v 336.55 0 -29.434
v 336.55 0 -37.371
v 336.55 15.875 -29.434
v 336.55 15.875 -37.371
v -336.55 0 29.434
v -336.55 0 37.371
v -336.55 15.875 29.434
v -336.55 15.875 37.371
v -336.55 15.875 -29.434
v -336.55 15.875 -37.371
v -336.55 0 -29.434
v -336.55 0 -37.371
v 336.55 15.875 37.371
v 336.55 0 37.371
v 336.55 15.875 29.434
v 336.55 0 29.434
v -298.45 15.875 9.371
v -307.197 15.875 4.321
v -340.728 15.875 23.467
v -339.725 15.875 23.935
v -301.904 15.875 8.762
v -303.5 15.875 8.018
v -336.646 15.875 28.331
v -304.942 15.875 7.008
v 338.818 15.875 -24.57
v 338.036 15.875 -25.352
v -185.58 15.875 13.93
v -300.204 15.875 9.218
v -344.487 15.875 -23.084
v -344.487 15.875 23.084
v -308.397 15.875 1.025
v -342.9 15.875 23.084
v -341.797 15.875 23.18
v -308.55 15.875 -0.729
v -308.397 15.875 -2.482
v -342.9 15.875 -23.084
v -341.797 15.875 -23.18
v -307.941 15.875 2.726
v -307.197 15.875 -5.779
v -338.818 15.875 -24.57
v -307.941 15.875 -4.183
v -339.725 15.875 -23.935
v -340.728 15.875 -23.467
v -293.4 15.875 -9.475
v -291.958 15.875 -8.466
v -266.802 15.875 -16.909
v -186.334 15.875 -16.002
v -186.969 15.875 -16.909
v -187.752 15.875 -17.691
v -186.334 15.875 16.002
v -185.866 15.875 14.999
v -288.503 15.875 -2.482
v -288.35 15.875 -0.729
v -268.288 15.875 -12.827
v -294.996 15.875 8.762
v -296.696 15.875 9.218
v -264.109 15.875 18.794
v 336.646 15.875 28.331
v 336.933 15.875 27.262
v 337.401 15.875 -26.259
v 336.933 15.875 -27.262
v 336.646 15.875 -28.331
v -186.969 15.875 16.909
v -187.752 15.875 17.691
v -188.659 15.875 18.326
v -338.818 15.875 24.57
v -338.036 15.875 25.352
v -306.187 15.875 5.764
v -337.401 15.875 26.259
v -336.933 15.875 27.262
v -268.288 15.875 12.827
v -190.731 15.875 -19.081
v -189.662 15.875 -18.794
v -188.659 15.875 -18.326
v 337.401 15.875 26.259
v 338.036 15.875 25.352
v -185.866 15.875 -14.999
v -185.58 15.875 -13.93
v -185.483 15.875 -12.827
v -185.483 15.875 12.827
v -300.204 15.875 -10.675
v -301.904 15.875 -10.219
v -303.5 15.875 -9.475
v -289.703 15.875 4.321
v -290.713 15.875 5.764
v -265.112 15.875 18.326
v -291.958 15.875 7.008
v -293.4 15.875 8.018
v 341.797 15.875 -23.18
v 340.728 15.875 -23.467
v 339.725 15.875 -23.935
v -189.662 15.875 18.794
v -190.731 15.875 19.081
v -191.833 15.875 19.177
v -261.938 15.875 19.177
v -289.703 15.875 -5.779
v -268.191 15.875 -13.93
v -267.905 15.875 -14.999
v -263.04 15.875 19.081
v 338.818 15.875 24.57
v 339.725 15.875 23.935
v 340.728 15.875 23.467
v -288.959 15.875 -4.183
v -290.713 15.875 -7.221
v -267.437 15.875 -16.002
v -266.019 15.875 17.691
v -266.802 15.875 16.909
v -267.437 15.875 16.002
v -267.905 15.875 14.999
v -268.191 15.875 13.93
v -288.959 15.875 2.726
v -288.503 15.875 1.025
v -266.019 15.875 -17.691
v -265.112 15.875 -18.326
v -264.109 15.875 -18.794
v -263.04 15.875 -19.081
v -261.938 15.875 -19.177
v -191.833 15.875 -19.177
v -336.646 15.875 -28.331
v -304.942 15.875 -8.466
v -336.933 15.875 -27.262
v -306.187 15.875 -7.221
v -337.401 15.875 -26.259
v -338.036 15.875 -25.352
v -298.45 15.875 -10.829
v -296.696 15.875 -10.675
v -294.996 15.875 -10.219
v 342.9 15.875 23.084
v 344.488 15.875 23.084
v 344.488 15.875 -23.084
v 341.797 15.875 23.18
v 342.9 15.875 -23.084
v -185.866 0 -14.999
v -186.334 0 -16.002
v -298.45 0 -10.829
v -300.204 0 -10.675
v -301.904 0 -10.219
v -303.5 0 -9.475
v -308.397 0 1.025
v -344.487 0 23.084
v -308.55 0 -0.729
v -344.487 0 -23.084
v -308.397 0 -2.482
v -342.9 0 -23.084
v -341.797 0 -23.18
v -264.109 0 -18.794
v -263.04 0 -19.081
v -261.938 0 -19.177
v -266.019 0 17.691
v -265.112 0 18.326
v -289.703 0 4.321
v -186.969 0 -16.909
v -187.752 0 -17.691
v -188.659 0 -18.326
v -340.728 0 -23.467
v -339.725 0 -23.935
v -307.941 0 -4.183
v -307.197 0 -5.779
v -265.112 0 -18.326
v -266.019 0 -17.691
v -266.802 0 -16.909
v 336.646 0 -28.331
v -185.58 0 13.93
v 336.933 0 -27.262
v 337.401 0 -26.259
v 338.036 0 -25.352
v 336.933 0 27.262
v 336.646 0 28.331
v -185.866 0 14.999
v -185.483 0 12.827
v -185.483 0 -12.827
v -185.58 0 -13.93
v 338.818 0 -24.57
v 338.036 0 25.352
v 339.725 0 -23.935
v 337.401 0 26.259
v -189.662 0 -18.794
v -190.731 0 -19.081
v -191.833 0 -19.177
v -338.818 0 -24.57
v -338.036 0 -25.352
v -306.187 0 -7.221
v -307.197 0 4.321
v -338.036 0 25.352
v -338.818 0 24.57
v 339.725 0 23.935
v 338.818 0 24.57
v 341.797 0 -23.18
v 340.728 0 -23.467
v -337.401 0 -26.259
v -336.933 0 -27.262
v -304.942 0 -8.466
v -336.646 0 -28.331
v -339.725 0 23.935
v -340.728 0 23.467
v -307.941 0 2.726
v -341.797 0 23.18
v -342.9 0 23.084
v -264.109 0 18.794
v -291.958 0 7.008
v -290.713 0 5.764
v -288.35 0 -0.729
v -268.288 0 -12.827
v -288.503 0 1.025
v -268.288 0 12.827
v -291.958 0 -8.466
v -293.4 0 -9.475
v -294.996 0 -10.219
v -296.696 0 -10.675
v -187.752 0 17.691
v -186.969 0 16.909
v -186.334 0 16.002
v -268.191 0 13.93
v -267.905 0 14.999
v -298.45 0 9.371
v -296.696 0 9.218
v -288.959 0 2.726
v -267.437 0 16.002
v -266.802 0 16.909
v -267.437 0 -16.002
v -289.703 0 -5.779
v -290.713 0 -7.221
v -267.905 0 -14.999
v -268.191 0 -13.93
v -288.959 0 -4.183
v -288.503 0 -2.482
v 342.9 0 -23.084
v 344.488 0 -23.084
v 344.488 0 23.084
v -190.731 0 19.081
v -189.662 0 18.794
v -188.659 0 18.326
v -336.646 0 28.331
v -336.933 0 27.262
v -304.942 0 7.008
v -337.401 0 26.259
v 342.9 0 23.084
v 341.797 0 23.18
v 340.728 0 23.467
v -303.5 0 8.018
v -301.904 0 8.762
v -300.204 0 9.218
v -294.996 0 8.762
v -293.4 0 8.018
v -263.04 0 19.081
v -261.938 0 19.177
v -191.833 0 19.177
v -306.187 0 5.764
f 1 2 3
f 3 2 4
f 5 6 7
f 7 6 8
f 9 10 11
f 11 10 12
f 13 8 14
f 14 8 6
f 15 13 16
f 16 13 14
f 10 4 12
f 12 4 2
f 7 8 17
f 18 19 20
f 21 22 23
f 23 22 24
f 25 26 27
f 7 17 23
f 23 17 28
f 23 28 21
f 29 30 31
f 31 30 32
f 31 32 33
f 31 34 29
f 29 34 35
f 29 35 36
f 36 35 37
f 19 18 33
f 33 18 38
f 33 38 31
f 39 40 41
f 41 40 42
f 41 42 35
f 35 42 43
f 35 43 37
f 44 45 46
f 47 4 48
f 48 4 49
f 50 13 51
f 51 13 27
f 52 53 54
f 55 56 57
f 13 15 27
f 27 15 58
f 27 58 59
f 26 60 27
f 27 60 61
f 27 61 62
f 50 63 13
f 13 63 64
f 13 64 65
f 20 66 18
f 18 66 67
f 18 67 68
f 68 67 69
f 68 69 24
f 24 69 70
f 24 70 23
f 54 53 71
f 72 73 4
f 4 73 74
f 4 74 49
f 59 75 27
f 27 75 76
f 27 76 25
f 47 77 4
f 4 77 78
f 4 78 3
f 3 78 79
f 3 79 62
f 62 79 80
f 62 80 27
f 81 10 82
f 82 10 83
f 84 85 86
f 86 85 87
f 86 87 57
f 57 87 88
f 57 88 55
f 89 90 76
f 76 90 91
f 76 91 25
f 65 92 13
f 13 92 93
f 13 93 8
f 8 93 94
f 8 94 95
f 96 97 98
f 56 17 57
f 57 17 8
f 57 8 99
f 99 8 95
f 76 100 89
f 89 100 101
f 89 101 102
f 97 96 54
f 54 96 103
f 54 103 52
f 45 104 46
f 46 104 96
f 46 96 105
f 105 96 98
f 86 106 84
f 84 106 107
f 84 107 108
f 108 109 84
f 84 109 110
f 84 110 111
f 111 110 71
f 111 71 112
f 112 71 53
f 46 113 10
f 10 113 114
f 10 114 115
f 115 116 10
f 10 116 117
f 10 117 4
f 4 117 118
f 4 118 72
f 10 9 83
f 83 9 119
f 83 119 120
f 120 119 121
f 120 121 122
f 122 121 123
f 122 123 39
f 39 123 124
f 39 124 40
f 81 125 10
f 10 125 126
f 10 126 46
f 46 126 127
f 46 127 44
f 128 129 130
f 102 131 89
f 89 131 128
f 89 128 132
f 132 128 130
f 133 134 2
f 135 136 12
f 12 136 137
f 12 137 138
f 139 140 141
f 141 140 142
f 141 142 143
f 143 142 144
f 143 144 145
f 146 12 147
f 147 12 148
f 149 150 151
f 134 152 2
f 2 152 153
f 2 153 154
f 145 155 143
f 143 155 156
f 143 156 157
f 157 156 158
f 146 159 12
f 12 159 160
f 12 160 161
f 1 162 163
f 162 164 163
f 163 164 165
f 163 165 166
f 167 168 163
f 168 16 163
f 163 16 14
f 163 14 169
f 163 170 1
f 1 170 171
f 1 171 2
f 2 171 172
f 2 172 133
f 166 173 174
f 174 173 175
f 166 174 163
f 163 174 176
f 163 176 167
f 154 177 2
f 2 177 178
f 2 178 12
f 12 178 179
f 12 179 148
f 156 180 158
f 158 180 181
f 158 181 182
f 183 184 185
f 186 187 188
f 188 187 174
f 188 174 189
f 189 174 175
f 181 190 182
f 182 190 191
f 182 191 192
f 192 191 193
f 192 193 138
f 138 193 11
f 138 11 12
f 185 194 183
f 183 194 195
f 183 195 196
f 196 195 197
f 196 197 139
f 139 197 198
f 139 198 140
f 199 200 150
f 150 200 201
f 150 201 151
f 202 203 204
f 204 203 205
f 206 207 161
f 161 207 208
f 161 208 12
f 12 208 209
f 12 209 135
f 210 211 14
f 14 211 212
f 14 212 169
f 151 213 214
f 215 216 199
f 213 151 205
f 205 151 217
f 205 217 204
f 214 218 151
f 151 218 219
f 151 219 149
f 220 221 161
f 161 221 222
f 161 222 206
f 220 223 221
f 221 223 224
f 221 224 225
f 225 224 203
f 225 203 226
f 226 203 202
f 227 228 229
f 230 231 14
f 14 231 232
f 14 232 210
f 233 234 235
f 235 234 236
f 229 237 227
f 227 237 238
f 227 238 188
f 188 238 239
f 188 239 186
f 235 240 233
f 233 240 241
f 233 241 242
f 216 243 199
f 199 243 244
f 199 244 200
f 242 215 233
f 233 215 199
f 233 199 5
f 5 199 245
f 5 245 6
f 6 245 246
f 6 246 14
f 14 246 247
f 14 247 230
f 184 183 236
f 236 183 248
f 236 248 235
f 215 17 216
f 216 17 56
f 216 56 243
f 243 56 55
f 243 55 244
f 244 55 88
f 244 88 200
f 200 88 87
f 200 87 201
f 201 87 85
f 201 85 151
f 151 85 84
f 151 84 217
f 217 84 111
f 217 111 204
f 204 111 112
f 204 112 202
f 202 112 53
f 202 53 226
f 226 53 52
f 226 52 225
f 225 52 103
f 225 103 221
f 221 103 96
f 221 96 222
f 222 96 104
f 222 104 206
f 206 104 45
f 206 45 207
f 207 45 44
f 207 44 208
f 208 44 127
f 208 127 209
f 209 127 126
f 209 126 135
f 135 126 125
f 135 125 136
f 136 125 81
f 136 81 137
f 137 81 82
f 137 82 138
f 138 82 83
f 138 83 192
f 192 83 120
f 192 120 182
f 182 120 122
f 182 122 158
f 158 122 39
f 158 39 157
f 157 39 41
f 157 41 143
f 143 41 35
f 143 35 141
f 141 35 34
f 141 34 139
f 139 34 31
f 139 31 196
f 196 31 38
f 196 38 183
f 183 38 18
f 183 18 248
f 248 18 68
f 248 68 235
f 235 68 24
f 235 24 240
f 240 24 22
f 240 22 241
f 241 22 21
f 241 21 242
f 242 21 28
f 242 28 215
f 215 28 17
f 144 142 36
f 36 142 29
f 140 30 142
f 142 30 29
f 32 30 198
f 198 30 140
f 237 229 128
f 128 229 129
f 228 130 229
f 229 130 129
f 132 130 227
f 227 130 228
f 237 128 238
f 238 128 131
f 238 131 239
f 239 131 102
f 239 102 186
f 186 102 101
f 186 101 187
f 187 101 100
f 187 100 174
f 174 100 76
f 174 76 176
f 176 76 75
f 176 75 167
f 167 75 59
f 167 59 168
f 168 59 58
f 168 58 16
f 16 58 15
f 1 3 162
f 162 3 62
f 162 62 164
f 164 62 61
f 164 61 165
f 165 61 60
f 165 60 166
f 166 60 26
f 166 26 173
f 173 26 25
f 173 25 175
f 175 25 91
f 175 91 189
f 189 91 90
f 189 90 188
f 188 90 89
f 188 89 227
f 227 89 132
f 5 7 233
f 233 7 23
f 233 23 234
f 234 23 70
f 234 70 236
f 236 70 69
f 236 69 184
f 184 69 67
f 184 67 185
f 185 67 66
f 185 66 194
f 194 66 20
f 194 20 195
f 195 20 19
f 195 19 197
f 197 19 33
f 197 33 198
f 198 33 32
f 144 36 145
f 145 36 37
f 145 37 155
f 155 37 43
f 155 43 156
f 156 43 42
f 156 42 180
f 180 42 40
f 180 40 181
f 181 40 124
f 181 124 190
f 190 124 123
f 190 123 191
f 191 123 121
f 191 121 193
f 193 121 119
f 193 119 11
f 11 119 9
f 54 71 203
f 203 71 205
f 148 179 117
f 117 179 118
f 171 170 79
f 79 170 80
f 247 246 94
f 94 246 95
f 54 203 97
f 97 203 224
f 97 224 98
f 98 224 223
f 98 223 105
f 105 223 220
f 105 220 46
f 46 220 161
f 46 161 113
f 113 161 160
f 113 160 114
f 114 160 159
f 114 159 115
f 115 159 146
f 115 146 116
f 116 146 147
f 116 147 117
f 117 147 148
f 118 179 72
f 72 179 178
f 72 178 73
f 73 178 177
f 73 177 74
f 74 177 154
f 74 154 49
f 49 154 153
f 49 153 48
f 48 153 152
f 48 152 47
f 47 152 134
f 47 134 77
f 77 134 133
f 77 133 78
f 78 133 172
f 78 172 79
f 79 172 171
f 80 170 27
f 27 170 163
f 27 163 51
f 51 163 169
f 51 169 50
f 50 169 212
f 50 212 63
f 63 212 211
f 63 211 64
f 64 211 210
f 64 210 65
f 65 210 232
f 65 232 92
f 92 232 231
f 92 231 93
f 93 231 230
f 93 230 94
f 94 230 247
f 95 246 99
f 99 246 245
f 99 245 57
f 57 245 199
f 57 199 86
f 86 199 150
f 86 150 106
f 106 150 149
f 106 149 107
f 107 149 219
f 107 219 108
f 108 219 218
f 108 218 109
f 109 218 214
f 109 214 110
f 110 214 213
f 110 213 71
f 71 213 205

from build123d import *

# Parameters (mm, degrees)
SKETCH1_W               = 673.1
SKETCH1_H               = 74.742799968
BOSS_EXTRUDE1_DEPTH     = 15.875
SKETCH3_R               = 10.1
CUT_EXTRUDE1_DEPTH      = 1
CUT_EXTRUDE1_DEPTH_BACK = 16.875
SKETCH4_W               = 7.9375
SKETCH4_H               = 46.167799968
BOSS_EXTRUDE3_DEPTH     = 15.875
FILLET2_R               = 6.35
SKETCH5_W               = 82.804
SKETCH5_H               = 38.354
CUT_EXTRUDE2_DEPTH      = 1
CUT_EXTRUDE2_DEPTH_BACK = 16.875
FILLET3_R               = 6.35


with BuildPart() as part:
    # Sketch1 → Boss-Extrude1 (new body)
    with BuildSketch(Plane(origin=(0, 0, 0), x_dir=(1, 0, 0), z_dir=(0, 1, 0))):
        Rectangle(SKETCH1_W, SKETCH1_H)
    extrude(amount=BOSS_EXTRUDE1_DEPTH)

    # Sketch3 → Cut-Extrude1 (cut, two sides)
    with BuildSketch(Plane(origin=(0, 15.875, 0), x_dir=(1, 0, 0), z_dir=(0, 1, 0))) as cut_extrude1_sk:
        with Locations((-298.45, 0.728600016)):
            Circle(SKETCH3_R)
    extrude(amount=CUT_EXTRUDE1_DEPTH, mode=Mode.SUBTRACT)
    extrude(cut_extrude1_sk.sketch, amount=-CUT_EXTRUDE1_DEPTH_BACK, mode=Mode.SUBTRACT)

    # Sketch4 → Boss-Extrude3 (add)
    with BuildSketch(Plane(origin=(0, 15.875, 0), x_dir=(1, 0, 0), z_dir=(0, 1, 0))):
        with Locations((-340.51875, 0)):
            Rectangle(SKETCH4_W, SKETCH4_H)
        with Locations((340.51875, 0)):
            Rectangle(SKETCH4_W, SKETCH4_H)
    extrude(amount=-BOSS_EXTRUDE3_DEPTH)

    # Fillet2
    fillet2_edges = [part.edges().sort_by_distance(p)[0] for p in [
        (-336.55, 7.9375, 23.083899984),
        (-336.55, 7.9375, -23.083899984),
        (336.55, 7.9375, 23.083899984),
        (336.55, 7.9375, -23.083899984),
    ]]
    fillet(fillet2_edges, radius=FILLET2_R)

    # Sketch5 → Cut-Extrude2 (cut, two sides)
    with BuildSketch(Plane(origin=(0, 15.875, 0), x_dir=(1, 0, 0), z_dir=(0, 1, 0))) as cut_extrude2_sk:
        with Locations((-226.8855, 0)):
            Rectangle(SKETCH5_W, SKETCH5_H)
    extrude(amount=CUT_EXTRUDE2_DEPTH, mode=Mode.SUBTRACT)
    extrude(cut_extrude2_sk.sketch, amount=-CUT_EXTRUDE2_DEPTH_BACK, mode=Mode.SUBTRACT)

    # Fillet3
    fillet3_edges = [part.edges().sort_by_distance(p)[0] for p in [
        (-268.2875, 7.9375, 19.177),
        (-268.2875, 7.9375, -19.177),
        (-185.4835, 7.9375, -19.177),
        (-185.4835, 7.9375, 19.177),
    ]]
    fillet(fillet3_edges, radius=FILLET3_R)


solid = part.part
